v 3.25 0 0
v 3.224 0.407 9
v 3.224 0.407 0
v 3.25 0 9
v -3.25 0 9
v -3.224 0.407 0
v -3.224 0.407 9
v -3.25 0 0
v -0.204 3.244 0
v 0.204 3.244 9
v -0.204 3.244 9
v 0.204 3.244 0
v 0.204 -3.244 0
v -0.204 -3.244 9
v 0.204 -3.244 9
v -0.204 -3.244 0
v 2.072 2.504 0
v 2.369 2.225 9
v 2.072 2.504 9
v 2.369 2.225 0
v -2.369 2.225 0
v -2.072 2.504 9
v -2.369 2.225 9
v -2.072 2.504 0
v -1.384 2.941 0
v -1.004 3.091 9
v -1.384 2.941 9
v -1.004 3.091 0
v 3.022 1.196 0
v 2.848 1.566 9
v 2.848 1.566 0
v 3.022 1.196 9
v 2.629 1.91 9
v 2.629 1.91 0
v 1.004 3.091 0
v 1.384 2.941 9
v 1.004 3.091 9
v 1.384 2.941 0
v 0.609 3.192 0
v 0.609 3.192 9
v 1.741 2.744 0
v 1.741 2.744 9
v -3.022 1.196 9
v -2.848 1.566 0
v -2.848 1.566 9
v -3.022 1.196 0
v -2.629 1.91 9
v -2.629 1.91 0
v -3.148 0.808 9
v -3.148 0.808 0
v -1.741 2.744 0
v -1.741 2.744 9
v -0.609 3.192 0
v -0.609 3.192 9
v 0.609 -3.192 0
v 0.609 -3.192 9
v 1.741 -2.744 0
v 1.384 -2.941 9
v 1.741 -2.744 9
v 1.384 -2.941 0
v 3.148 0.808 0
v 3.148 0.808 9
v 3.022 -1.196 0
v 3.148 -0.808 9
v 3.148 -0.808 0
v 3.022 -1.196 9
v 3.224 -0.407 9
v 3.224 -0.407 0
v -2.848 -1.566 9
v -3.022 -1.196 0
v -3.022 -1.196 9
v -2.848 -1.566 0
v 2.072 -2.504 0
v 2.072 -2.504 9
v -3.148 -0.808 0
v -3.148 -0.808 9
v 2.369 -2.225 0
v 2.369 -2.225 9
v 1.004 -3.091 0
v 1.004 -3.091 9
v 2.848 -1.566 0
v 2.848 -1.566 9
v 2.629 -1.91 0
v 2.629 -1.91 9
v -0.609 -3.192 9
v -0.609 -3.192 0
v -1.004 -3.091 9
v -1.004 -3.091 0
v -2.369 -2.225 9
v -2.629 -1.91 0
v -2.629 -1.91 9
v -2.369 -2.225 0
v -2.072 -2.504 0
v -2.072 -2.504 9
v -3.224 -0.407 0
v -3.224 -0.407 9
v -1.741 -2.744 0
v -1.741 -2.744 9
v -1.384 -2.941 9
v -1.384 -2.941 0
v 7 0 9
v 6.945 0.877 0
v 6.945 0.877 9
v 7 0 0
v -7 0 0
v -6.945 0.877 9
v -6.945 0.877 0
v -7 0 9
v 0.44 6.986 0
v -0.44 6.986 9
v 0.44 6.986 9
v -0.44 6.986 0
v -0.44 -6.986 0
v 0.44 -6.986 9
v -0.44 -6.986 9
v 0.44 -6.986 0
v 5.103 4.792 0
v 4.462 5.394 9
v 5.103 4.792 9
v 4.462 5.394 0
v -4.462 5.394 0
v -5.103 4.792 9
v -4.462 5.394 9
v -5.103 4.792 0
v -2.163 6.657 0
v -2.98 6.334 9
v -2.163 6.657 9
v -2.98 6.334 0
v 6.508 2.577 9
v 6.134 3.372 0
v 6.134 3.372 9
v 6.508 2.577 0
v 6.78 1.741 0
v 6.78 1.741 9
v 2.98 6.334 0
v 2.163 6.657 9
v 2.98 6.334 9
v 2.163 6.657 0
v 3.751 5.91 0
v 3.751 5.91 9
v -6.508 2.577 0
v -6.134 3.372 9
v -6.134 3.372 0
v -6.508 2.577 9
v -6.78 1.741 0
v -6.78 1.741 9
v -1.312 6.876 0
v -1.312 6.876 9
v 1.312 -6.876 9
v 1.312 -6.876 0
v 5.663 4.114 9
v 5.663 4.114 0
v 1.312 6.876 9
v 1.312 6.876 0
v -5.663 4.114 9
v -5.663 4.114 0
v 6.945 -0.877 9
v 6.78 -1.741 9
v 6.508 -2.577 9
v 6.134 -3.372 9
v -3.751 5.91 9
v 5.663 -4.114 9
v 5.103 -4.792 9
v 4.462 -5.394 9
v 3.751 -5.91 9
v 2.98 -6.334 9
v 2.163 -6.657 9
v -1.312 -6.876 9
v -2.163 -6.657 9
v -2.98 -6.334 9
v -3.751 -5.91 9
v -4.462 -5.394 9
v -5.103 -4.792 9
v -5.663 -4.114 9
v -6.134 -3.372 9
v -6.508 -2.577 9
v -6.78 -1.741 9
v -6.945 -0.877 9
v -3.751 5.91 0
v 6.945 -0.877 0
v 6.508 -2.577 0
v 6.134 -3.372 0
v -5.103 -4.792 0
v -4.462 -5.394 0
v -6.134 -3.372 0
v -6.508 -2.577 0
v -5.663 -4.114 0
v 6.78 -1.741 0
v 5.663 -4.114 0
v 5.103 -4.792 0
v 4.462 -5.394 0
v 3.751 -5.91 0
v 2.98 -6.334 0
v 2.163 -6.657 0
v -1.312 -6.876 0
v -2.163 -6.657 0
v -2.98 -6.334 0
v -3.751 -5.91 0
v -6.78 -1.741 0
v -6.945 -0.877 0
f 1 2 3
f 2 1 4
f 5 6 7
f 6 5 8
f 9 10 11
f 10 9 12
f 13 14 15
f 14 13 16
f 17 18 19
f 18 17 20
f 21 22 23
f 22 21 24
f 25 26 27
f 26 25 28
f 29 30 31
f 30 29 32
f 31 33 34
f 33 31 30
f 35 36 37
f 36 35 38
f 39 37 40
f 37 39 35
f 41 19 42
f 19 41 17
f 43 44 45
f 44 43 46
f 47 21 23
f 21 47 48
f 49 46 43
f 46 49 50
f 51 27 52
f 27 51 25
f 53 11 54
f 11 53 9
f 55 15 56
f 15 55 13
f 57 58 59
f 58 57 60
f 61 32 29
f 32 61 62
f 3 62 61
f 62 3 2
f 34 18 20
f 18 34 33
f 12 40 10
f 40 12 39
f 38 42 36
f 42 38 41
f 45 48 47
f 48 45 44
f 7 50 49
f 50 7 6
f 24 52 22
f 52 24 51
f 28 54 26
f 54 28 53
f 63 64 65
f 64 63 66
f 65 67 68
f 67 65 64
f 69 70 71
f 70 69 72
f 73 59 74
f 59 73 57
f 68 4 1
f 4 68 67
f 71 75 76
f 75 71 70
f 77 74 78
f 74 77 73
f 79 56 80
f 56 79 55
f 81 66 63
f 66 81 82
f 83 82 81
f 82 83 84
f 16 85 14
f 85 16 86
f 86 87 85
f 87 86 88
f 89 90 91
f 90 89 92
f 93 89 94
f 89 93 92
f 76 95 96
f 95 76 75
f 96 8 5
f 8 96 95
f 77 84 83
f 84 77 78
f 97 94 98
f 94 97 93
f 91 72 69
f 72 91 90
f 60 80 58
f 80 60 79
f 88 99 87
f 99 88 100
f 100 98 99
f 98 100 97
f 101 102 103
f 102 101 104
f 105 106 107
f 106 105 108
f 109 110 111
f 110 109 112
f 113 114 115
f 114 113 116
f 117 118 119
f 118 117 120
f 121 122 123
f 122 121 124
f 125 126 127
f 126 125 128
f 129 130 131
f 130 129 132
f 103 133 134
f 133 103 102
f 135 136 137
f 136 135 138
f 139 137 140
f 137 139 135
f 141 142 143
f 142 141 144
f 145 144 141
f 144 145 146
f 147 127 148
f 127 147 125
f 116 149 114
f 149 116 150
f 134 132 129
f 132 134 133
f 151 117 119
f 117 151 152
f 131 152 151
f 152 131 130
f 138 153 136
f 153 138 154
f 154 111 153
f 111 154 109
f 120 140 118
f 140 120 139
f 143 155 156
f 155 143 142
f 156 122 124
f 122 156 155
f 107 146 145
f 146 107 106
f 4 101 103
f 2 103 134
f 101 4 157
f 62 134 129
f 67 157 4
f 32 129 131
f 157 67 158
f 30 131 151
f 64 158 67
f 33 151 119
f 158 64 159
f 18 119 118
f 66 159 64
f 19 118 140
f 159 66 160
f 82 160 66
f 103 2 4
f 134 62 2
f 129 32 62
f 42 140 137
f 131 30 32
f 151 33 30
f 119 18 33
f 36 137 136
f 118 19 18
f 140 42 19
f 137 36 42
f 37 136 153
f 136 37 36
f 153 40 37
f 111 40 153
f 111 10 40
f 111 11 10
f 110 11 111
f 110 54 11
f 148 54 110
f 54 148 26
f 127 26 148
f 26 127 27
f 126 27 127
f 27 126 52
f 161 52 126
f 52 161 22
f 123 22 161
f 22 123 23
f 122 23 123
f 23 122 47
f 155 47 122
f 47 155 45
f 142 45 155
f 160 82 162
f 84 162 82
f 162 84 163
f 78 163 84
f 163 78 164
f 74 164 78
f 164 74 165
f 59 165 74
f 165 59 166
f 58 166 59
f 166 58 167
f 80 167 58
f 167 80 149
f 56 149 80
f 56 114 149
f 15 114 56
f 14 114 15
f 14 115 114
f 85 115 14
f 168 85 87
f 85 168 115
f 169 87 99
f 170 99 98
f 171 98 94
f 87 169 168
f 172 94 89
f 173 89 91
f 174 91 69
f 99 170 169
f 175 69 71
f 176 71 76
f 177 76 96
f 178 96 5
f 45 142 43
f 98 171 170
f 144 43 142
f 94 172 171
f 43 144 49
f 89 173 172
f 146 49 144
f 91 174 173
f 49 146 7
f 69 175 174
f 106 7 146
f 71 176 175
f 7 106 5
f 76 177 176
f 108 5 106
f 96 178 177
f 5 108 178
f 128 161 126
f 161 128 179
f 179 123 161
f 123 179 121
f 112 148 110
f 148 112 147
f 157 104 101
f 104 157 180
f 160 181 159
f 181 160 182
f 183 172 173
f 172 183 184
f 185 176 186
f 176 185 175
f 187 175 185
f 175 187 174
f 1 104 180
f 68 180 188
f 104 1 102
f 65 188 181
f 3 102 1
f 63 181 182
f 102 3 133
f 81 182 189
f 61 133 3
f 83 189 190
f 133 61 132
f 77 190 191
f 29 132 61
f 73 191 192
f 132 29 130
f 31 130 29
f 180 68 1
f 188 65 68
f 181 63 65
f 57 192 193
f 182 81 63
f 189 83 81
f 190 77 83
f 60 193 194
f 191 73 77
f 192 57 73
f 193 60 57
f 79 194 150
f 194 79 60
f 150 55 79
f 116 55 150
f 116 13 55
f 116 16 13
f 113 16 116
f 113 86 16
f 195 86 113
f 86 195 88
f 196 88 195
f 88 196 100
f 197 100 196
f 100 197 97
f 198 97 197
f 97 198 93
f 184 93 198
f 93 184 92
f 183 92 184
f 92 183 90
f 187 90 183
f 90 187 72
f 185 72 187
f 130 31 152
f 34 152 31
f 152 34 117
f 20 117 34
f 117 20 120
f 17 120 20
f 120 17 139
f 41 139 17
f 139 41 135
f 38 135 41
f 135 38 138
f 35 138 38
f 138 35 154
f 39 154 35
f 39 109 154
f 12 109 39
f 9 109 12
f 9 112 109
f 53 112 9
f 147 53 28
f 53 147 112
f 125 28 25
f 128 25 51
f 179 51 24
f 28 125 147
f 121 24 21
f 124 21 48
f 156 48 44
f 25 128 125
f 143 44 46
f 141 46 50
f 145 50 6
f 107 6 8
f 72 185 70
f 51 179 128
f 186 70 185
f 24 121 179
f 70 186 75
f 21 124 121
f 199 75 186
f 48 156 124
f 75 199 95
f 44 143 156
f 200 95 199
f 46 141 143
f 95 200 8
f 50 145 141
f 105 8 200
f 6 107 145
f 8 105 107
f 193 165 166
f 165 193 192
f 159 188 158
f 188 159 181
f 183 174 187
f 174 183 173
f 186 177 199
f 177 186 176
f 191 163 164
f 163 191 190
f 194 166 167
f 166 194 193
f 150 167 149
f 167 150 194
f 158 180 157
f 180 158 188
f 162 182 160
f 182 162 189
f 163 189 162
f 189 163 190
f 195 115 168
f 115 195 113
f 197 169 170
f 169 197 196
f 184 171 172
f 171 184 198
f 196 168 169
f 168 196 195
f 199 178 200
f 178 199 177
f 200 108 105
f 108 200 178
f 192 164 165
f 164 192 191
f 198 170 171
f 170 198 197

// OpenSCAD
$fn = 50;


difference() {
	union() {
		cylinder(h = 9, r = 7.0000000000);
	}
	union() {
		translate(v = [0.0000000000, 0.0000000000, -100.0000000000]) {
			cylinder(h = 200, r = 3.2500000000);
		}
		translate(v = [0.0000000000, 0.0000000000, -100.0000000000]) {
			cylinder(h = 200, r = 3.2500000000);
		}
		translate(v = [0.0000000000, 0.0000000000, -100.0000000000]) {
			cylinder(h = 200, r = 3.2500000000);
		}
		translate(v = [0.0000000000, 0.0000000000, -100.0000000000]) {
			cylinder(h = 200, r = 3.2500000000);
		}
	}
}
